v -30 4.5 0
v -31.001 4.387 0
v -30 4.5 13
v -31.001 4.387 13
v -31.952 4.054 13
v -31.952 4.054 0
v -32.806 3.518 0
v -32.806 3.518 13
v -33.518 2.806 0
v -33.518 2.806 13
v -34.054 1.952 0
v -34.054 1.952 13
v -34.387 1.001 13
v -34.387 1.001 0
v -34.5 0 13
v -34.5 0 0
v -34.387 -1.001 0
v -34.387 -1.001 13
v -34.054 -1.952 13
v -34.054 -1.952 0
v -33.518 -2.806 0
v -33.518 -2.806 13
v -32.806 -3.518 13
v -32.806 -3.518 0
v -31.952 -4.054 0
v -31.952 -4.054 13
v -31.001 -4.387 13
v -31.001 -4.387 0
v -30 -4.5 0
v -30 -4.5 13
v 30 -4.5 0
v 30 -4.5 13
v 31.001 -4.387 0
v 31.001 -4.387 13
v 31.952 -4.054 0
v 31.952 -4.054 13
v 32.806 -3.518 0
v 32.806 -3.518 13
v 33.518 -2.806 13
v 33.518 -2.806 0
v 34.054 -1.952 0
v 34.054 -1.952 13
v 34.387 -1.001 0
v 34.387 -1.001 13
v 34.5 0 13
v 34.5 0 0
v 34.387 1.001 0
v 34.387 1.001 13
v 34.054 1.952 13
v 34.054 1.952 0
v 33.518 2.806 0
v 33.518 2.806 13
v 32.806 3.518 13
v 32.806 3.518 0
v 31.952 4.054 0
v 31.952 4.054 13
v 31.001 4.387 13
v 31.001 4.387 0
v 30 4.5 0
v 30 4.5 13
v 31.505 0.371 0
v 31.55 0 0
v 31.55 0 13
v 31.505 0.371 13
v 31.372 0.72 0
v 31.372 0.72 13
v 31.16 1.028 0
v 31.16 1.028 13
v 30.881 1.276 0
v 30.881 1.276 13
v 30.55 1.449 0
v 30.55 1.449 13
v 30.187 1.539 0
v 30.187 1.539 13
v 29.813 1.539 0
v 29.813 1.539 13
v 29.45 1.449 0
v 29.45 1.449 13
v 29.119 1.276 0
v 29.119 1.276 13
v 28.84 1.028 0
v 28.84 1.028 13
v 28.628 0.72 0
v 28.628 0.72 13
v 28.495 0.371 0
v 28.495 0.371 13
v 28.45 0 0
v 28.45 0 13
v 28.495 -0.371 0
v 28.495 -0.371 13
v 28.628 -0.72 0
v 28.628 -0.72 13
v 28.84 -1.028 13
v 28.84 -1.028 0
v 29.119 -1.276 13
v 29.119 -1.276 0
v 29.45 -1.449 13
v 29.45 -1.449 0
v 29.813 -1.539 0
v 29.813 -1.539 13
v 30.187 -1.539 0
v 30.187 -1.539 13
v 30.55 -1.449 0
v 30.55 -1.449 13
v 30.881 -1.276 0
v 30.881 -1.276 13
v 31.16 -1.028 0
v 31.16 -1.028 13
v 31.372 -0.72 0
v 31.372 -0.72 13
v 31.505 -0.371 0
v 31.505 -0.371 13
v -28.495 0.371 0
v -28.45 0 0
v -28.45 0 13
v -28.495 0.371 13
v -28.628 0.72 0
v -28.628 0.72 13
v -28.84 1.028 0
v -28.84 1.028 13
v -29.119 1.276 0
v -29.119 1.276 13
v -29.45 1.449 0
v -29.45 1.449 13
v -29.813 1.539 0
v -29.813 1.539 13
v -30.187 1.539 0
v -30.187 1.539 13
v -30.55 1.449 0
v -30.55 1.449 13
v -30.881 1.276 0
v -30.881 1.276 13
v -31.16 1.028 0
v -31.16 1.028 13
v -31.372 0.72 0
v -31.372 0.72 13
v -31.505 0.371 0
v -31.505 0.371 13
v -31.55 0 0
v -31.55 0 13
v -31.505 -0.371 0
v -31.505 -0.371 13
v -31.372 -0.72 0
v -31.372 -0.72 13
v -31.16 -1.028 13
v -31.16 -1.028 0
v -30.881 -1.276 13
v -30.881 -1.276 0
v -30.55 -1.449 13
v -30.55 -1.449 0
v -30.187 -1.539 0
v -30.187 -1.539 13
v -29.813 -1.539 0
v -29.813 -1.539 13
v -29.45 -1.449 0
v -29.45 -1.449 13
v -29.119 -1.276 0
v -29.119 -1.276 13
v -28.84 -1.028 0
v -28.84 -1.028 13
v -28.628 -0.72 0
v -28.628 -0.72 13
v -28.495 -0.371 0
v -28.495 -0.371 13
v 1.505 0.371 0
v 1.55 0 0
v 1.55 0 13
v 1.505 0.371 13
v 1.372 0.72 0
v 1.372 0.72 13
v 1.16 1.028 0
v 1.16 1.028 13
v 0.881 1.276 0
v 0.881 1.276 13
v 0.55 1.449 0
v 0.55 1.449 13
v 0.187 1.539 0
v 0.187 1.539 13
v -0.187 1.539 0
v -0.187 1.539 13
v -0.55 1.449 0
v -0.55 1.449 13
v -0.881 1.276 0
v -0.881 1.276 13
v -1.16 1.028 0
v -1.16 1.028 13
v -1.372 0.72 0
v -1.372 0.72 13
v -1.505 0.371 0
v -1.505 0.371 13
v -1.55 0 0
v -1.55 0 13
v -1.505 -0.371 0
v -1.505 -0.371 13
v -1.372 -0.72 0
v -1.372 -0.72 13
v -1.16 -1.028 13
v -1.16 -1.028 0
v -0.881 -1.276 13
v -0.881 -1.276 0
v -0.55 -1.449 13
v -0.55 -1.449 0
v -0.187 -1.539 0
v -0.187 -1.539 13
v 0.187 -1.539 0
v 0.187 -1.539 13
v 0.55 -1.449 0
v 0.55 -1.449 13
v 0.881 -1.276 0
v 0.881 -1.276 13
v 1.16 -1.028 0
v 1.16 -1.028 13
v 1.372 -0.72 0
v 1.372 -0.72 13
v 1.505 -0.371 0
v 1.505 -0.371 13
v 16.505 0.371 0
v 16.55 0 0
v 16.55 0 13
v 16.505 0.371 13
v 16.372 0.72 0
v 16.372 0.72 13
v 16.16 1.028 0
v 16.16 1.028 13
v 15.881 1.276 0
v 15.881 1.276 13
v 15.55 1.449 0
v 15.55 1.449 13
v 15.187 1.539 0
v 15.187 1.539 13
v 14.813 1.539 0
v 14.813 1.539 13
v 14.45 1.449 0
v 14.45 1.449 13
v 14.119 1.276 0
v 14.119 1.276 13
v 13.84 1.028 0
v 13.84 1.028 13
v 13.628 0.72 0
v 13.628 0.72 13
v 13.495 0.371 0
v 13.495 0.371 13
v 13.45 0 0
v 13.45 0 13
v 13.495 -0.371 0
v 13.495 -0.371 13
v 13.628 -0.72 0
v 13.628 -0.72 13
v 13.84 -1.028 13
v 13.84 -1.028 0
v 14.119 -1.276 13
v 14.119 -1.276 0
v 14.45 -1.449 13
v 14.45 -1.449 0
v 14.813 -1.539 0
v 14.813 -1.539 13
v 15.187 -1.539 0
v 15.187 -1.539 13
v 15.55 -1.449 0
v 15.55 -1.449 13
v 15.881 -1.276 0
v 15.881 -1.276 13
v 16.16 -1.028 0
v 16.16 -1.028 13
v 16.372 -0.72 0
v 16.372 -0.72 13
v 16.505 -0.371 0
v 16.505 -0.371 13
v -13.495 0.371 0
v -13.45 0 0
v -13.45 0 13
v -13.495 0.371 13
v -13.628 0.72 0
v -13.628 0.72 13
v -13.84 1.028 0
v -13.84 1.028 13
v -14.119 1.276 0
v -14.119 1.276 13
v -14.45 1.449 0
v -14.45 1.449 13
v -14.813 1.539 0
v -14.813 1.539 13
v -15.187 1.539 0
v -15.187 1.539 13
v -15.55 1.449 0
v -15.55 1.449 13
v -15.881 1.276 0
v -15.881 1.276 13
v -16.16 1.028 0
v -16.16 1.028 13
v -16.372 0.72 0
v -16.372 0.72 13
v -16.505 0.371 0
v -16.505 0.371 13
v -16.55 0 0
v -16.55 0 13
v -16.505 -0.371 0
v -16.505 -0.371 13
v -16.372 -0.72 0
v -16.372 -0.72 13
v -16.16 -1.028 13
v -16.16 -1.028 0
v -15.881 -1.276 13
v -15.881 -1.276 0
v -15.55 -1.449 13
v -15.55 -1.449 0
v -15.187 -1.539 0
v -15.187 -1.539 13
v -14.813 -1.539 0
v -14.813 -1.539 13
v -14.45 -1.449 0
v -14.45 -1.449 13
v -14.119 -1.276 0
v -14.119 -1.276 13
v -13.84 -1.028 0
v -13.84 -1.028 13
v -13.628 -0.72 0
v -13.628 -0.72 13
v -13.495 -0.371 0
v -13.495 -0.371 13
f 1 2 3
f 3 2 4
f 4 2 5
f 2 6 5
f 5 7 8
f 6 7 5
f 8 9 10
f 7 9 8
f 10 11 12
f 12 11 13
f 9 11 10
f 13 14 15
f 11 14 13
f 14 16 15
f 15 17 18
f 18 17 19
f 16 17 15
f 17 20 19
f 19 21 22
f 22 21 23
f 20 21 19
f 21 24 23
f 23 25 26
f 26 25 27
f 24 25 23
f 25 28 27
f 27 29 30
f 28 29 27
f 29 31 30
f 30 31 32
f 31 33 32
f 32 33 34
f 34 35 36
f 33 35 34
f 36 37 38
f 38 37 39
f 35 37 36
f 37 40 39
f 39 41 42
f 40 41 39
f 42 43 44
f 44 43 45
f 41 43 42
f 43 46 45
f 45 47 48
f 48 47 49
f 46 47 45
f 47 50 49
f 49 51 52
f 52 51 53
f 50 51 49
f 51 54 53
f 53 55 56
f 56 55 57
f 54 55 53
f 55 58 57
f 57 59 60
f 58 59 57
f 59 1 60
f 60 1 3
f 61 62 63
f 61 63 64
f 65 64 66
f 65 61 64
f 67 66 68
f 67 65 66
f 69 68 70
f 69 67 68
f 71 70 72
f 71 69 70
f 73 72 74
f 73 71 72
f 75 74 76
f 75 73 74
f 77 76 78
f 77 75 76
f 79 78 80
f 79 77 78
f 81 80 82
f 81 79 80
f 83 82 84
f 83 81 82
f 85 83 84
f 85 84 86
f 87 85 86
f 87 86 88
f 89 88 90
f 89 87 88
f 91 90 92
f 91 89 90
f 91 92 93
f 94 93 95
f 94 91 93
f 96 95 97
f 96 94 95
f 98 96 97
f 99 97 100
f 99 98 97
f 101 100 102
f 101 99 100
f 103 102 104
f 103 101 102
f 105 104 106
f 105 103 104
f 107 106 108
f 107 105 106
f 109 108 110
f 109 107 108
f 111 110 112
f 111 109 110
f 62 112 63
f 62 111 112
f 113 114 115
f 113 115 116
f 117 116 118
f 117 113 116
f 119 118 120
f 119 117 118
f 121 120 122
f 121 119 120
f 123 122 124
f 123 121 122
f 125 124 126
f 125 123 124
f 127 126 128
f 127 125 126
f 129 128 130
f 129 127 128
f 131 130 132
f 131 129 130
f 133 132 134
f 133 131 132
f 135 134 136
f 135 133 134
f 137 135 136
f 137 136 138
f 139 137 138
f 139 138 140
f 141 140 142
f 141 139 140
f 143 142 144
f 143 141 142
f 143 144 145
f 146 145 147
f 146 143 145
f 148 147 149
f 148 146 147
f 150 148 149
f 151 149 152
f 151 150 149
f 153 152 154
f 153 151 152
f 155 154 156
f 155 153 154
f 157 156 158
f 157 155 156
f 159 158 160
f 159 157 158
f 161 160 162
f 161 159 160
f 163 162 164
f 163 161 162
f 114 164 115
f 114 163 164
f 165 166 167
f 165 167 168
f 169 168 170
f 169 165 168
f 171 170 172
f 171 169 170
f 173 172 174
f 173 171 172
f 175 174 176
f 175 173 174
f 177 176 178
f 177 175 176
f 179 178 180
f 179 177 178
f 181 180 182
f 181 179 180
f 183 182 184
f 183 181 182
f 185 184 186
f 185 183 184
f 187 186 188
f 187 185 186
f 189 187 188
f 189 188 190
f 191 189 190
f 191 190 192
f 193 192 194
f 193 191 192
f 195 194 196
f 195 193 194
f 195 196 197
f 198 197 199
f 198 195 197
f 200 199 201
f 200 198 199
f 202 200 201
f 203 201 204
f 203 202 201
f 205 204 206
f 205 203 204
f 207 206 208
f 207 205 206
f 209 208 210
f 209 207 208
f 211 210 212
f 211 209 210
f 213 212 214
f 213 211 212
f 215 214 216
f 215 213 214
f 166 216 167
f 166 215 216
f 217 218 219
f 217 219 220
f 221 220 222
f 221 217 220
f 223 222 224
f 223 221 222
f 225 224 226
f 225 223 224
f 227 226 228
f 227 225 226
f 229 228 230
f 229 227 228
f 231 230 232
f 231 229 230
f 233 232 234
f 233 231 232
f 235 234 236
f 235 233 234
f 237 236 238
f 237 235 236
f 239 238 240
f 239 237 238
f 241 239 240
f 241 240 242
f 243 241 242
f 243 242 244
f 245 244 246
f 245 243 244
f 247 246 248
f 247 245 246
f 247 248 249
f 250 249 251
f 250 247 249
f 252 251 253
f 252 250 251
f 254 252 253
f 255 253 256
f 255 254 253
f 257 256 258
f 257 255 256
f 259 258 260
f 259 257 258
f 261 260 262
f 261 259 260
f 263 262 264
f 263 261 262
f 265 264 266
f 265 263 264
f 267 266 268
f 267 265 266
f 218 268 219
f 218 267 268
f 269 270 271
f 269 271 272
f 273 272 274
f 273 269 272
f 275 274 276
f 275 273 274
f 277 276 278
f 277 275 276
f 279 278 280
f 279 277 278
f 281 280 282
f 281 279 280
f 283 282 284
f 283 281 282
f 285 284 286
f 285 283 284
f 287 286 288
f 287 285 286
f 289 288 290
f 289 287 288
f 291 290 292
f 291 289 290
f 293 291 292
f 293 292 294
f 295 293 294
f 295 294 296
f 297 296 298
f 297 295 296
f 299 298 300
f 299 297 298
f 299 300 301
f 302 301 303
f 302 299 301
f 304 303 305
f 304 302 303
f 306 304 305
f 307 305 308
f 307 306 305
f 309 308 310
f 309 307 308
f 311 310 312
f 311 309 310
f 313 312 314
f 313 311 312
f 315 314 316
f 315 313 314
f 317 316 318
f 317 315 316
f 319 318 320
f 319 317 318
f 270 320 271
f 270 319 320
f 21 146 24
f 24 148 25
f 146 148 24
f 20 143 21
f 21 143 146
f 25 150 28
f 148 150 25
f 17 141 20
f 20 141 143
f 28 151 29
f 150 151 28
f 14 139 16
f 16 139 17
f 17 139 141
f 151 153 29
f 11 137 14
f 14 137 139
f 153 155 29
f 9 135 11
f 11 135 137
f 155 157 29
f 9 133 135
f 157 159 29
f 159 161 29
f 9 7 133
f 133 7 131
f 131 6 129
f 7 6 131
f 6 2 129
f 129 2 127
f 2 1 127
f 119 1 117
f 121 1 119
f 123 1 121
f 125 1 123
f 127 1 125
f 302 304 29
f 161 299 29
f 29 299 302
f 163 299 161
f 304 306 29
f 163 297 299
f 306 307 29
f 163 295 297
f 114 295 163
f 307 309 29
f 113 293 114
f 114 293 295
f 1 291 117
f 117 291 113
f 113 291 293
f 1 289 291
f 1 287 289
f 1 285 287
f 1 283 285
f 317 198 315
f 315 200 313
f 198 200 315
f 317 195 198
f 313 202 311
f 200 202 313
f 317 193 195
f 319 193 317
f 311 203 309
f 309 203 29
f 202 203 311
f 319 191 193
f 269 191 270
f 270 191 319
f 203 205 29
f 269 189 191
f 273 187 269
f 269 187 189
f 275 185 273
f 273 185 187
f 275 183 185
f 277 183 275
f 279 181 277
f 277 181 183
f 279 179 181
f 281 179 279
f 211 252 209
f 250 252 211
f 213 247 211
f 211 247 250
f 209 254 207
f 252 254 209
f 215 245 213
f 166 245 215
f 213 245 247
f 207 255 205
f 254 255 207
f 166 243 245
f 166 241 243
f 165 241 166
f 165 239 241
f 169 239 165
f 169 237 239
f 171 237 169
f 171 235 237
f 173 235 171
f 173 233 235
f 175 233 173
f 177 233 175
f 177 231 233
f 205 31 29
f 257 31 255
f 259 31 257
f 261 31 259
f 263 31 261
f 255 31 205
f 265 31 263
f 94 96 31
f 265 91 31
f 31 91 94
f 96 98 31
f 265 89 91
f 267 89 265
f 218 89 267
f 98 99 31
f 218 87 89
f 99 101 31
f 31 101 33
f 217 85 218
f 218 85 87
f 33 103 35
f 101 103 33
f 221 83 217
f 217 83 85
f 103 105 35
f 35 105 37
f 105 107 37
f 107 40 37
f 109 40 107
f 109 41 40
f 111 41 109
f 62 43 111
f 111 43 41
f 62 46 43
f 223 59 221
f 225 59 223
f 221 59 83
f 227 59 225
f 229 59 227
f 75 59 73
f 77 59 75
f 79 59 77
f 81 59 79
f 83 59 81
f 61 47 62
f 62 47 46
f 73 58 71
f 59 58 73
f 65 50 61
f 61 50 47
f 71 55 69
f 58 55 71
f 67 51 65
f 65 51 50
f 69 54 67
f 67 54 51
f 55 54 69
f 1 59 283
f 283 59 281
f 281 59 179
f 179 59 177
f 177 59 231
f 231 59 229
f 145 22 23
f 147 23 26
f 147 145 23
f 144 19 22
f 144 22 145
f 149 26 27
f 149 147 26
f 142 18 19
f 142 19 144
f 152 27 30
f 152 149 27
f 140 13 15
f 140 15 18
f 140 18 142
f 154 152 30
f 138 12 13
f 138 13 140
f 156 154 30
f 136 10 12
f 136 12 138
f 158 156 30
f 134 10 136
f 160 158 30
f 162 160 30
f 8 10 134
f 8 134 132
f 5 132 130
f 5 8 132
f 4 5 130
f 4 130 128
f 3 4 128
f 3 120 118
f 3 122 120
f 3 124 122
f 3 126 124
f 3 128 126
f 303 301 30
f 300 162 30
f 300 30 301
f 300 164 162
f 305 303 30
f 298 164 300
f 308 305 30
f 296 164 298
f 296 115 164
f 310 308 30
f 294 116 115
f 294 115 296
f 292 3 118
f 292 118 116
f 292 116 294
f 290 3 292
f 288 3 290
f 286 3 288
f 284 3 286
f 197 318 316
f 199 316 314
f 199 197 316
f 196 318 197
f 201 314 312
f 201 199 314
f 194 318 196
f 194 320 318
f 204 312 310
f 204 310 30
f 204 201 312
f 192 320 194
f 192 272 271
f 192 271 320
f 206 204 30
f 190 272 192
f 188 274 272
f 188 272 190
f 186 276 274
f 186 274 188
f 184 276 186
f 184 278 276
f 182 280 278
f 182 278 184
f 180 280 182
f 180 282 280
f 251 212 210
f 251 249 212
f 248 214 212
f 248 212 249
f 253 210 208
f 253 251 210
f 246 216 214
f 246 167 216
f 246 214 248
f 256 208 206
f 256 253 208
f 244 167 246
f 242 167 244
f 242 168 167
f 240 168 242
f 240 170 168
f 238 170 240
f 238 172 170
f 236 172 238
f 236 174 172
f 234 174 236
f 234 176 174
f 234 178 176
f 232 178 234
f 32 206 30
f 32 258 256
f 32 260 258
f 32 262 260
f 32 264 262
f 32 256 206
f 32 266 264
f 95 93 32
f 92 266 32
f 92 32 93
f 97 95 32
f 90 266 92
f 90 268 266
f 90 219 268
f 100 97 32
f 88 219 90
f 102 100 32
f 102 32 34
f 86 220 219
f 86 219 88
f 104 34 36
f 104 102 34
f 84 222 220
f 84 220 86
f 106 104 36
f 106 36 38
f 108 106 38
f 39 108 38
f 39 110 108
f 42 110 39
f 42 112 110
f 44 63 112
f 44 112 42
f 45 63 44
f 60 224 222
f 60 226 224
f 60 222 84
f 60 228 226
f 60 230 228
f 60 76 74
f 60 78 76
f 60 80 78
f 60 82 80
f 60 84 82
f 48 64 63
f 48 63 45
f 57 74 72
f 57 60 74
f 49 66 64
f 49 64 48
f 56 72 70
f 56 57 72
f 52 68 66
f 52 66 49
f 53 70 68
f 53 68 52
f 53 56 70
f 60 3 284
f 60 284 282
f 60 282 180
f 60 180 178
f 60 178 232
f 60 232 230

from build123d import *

# Parameters (mm, degrees)
SKETCH_R  = 1.55
PAD_DEPTH = 13


with BuildPart() as part:
    # Sketch → Pad (new body)
    with BuildSketch(Plane.XY):
        with BuildLine():
            ThreePointArc((-30, 4.5), (-34.5, 0), (-30, -4.5))
            Line((-30, -4.5), (30, -4.5))
            ThreePointArc((30, -4.5), (34.5, 0), (30, 4.5))
            Line((30, 4.5), (-30, 4.5))
        make_face()
        with Locations((-30, 0)):
            Circle(SKETCH_R, mode=Mode.SUBTRACT)
        with Locations((30, 0)):
            Circle(SKETCH_R, mode=Mode.SUBTRACT)
        Circle(SKETCH_R, mode=Mode.SUBTRACT)
        with Locations((-15, 0)):
            Circle(SKETCH_R, mode=Mode.SUBTRACT)
        with Locations((15, 0)):
            Circle(SKETCH_R, mode=Mode.SUBTRACT)
    extrude(amount=PAD_DEPTH)


solid = part.part
